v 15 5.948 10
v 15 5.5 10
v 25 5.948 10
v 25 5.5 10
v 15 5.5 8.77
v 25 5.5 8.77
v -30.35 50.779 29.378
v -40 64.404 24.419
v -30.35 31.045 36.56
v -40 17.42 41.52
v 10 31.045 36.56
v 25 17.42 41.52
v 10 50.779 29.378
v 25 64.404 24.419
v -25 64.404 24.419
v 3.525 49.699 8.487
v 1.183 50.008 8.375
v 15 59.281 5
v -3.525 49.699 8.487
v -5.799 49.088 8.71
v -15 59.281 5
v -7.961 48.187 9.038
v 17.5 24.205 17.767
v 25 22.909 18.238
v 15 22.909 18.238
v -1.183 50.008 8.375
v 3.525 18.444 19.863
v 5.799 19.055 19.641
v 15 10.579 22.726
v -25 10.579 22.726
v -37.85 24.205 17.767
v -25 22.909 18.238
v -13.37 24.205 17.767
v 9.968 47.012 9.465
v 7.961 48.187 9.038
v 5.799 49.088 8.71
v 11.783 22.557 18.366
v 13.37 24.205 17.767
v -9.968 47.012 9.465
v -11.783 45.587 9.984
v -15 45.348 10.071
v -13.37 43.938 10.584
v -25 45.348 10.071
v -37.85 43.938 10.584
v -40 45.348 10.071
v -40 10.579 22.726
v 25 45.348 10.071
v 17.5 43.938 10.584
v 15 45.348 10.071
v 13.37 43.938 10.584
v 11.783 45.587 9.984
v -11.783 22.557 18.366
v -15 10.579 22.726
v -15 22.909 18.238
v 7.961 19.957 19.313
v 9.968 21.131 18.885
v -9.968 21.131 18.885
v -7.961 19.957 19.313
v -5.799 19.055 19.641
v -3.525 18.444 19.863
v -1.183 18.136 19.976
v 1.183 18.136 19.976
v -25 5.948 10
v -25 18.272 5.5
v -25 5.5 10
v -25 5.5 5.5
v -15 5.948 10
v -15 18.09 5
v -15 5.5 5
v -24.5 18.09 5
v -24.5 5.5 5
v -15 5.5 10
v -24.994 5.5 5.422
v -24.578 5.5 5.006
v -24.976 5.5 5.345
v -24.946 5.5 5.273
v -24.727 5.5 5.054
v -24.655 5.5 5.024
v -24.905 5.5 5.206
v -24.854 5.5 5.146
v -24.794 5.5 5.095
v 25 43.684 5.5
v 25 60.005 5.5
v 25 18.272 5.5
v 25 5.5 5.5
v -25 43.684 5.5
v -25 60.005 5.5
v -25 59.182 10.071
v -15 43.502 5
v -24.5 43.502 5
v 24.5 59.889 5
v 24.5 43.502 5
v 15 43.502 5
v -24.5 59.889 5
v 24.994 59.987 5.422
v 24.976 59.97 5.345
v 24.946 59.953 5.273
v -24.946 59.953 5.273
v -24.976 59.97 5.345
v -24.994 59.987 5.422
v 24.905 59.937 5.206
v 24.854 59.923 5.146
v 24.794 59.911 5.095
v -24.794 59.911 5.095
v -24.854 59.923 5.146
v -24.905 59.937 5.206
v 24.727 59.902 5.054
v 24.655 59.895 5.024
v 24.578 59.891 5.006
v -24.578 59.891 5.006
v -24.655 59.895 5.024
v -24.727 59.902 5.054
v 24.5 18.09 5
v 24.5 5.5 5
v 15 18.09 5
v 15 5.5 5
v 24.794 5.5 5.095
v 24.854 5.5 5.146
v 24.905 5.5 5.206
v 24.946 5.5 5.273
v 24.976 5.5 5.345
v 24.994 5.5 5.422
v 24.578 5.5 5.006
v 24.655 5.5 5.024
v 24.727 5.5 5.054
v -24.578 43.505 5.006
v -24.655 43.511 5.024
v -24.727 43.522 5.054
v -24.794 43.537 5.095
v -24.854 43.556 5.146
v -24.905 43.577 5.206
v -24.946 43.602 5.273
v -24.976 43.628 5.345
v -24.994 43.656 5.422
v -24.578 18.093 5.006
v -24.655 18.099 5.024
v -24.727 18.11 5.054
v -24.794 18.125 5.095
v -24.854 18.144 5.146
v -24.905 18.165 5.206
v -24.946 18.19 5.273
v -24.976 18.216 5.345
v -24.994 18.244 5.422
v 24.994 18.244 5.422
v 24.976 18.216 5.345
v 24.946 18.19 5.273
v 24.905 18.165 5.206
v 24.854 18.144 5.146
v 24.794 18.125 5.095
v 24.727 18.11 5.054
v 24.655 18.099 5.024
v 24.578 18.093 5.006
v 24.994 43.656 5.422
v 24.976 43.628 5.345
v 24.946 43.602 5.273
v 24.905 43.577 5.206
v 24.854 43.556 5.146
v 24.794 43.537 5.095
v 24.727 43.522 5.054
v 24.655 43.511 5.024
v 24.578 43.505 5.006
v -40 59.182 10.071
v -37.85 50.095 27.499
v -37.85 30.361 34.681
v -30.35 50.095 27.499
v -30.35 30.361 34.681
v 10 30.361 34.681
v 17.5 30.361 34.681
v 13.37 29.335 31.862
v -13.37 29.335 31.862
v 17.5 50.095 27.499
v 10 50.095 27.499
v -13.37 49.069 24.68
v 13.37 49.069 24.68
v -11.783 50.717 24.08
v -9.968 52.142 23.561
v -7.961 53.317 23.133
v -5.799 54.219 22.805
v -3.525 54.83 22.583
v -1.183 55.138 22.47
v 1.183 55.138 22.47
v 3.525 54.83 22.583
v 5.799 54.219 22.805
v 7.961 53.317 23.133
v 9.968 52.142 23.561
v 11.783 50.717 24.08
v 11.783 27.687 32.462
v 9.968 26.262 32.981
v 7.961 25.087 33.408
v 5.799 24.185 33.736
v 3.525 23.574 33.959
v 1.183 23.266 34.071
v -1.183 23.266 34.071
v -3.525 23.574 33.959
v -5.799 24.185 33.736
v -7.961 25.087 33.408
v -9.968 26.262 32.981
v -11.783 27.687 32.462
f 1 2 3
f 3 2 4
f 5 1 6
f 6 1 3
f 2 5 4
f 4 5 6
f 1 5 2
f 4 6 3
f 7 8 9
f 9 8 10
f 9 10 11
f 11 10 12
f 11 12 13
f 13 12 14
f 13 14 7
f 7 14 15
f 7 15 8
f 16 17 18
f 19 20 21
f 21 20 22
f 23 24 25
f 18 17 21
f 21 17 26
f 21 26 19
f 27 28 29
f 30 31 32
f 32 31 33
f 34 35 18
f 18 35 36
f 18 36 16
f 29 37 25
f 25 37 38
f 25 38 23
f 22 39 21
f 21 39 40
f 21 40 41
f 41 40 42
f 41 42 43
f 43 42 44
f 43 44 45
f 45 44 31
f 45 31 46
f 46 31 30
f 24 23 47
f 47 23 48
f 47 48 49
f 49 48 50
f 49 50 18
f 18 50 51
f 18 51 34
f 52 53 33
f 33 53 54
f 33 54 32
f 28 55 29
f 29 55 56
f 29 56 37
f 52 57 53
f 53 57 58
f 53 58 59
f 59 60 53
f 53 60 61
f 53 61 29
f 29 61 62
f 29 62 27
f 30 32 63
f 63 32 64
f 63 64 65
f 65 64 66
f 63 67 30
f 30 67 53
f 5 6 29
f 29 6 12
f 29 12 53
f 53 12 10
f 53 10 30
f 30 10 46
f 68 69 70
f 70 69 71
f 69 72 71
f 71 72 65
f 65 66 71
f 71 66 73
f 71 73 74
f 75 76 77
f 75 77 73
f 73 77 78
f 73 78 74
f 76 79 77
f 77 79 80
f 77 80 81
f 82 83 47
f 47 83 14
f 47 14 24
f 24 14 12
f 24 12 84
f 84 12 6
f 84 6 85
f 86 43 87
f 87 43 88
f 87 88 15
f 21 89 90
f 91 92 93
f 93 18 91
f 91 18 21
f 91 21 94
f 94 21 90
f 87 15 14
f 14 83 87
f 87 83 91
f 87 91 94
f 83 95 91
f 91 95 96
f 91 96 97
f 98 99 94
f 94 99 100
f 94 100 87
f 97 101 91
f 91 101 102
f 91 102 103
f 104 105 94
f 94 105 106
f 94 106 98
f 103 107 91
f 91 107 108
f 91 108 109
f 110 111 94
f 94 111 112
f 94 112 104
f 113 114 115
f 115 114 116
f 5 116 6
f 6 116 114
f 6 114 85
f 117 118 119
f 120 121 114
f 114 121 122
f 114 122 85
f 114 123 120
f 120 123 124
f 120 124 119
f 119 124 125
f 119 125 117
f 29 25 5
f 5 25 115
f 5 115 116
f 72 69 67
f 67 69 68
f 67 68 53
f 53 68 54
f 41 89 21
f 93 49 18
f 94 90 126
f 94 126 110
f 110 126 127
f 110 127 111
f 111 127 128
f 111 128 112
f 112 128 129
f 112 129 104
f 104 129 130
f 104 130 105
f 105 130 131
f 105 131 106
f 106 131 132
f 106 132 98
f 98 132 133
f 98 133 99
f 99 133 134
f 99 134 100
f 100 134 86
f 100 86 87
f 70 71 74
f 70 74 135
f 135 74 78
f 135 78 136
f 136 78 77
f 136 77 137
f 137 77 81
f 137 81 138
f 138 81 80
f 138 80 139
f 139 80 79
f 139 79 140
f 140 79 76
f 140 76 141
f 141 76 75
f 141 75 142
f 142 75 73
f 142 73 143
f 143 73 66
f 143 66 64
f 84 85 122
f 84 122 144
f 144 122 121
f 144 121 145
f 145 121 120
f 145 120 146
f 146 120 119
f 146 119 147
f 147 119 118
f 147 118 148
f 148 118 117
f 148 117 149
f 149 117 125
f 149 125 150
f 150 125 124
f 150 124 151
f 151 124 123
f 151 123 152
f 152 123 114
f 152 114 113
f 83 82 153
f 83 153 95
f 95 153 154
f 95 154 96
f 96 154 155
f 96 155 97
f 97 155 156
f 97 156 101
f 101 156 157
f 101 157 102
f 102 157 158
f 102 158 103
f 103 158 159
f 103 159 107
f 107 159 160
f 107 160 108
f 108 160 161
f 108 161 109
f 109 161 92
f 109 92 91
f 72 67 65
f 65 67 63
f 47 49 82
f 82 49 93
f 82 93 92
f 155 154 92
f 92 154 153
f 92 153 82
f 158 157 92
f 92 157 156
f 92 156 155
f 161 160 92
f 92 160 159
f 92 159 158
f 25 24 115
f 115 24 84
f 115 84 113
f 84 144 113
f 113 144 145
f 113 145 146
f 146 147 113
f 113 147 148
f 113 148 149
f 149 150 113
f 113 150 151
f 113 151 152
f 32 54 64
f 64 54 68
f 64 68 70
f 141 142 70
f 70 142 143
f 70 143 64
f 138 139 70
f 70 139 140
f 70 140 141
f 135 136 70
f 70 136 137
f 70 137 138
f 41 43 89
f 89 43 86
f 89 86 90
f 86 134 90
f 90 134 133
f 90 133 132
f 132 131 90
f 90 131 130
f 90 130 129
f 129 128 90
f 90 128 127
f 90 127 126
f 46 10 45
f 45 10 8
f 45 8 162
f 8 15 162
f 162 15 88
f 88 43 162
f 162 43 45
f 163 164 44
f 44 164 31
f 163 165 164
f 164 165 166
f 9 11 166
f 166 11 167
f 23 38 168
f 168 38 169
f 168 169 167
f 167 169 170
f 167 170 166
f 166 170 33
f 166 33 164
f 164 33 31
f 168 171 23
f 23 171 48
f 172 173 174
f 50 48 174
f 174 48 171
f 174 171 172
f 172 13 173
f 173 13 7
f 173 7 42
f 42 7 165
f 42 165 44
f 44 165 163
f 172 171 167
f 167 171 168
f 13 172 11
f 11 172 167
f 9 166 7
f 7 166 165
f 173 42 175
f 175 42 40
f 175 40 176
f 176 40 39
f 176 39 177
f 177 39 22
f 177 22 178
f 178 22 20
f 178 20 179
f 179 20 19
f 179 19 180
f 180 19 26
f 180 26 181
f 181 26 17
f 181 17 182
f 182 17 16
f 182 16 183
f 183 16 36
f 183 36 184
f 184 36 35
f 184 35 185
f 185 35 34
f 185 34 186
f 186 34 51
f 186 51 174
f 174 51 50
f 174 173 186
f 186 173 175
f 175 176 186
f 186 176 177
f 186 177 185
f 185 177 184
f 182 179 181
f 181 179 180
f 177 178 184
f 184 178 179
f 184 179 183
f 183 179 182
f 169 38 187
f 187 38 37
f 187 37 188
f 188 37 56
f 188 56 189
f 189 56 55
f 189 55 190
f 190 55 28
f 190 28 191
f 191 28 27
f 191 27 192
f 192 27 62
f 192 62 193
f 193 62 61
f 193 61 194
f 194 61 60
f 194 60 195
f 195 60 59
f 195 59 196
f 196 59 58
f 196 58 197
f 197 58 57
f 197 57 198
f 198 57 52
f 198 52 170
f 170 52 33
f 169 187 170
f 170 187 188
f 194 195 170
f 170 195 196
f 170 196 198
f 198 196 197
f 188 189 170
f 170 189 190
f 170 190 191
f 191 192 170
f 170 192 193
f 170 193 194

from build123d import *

# Parameters (mm, degrees)
SKETCH2_W            = 6
SKETCH2_H            = 6
BOSS_EXTRUDE1_DEPTH  = 5
SKETCH3_W            = 200
SKETCH3_H            = 20
CUT_EXTRUDE1_DEPTH   = 5
SKETCH4_W            = 5
SKETCH4_H            = 5
CUT_EXTRUDE2_DEPTH   = 5
SKETCH6_W            = 100
SKETCH6_H            = 20
BOSS_EXTRUDE2_DEPTH  = 100
BOSS_EXTRUDE3_DEPTH  = 100
CUT_EXTRUDE4_DEPTH   = 100
BOSS_EXTRUDE5_DEPTH  = 100
SKETCH14_R           = 12.5
CUT_EXTRUDE5_DEPTH   = 100
SKETCH15_R           = 15
SKETCH15_R_2         = 12.5
BOSS_EXTRUDE6_DEPTH  = 40
SKETCH16_W           = 50
SKETCH16_H           = 61.072294376
CUT_EXTRUDE10_DEPTH  = 35
SKETCH15_4_R         = 15
SKETCH15_4_R_2       = 12.5
CUT_EXTRUDE11_DEPTH  = 15
BOSS_EXTRUDE7_DEPTH  = 5
SKETCH23_R           = 15
SKETCH23_R_2         = 12.5
BOSS_EXTRUDE8_DEPTH  = 25
SKETCH21_W           = 50
SKETCH21_H           = 55
CUT_EXTRUDE12_DEPTH  = 35
SKETCH22_W           = 50
SKETCH22_H           = 55
BOSS_EXTRUDE9_DEPTH  = 5
SKETCH23_3_R         = 12.5
CUT_EXTRUDE13_DEPTH  = 20
CUT_EXTRUDE15_DEPTH  = 3
CUT_EXTRUDE16_DEPTH  = 5
SKETCH28_3_W         = 50
SKETCH28_3_H         = 5
BOSS_EXTRUDE12_DEPTH = 5
SKETCH31_W           = 50
SKETCH31_H           = 50
SKETCH31_W_2         = 24
SKETCH31_H_2         = 12.7
BOSS_EXTRUDE13_DEPTH = 20
SKETCH34_W           = 50
SKETCH34_H           = 50
CUT_EXTRUDE19_DEPTH  = 105
CUT_EXTRUDE20_DEPTH  = 110
SKETCH38_R           = 15
SKETCH38_R_2         = 12.5
CUT_EXTRUDE21_DEPTH  = 20
BOSS_EXTRUDE15_DEPTH = 50
SKETCH42_W           = 30
SKETCH42_H           = 18.394120173
CUT_EXTRUDE24_DEPTH  = 55
CUT_EXTRUDE25_DEPTH  = 55
FILLET1_R            = 0.5
BOSS_EXTRUDE16_DEPTH = 10
BOSS_EXTRUDE17_DEPTH = 10
CUT_EXTRUDE26_DEPTH  = 50
SKETCH49_W           = 15
SKETCH49_H           = 50
BOSS_EXTRUDE18_DEPTH = 20
CUT_EXTRUDE27_DEPTH  = 15
SKETCH47_W           = 7.5
SKETCH47_H           = 21
CUT_EXTRUDE28_DEPTH  = 18
SKETCH47_4_W         = 40.35
SKETCH47_4_H         = 21
SKETCH47_4_W_2       = 24
SKETCH47_4_H_2       = 12.7
CUT_EXTRUDE29_DEPTH  = 20
CUT_EXTRUDE30_DEPTH  = 15


with BuildPart() as part:
    # Sketch2 → Boss-Extrude1 (new body)
    with BuildSketch(Plane.XY):
        Polygon((-100, 75), (-100, -45), (-60, -45), (-60, -65), (0, -65), (60, -65), (60, -45), (100, -45), (100, 75), align=None)
        with Locations((55, -50)):
            Rectangle(SKETCH2_W, SKETCH2_H, mode=Mode.SUBTRACT)
        with Locations((-55, -50)):
            Rectangle(SKETCH2_W, SKETCH2_H, mode=Mode.SUBTRACT)
    extrude(amount=BOSS_EXTRUDE1_DEPTH)

    # Sketch3 → Cut-Extrude1 (cut)
    with BuildSketch(Plane.XY.offset(5)):
        with Locations((0, 65)):
            Rectangle(SKETCH3_W, SKETCH3_H)
    extrude(amount=-CUT_EXTRUDE1_DEPTH, mode=Mode.SUBTRACT)

    # Sketch4 → Cut-Extrude2 (cut)
    with BuildSketch(Plane(origin=(0, 0, 0), x_dir=(-1, 0, 0), z_dir=(0, 0, -1))):
        with Locations((-97.5, 47.5)):
            Rectangle(SKETCH4_W, SKETCH4_H)
        Polygon((95, 50), (95, 45), (97.5, 45), (100, 45), (100, 50), align=None)
        with Locations((-97.5, 5)):
            Rectangle(SKETCH4_W, SKETCH4_H)
        with Locations((97.5, 5)):
            Rectangle(SKETCH4_W, SKETCH4_H)
        with Locations((-97.5, -37.5)):
            Rectangle(SKETCH4_W, SKETCH4_H)
        Polygon((100, -35), (95, -35), (95, -40), (97.5, -40), (100, -40), align=None)
    extrude(amount=-CUT_EXTRUDE2_DEPTH, mode=Mode.SUBTRACT)

    # Sketch6 → Boss-Extrude2 (add)
    with BuildSketch(Plane(origin=(0, 0, 0), x_dir=(-1, 0, 0), z_dir=(0, 0, -1))):
        with Locations((0, -55)):
            Rectangle(SKETCH6_W, SKETCH6_H)
    extrude(amount=BOSS_EXTRUDE2_DEPTH)

    # Sketch8 → Boss-Extrude3 (add)
    with BuildSketch(Plane(origin=(50, 0, 0), x_dir=(0, 0, -1), z_dir=(1, 0, 0))):
        Polygon((42.17911114, -45), (100, -45), (100, 55), (78.57613456, 55), (63.797824283, 14.396926208), (60.37762285, 5), (56.957421417, -4.396926208), align=None)
    extrude(amount=-BOSS_EXTRUDE3_DEPTH)

    # Sketch12 → Cut-Extrude4 (cut)
    with BuildSketch(Plane(origin=(50, 0, 0), x_dir=(0, 0, -1), z_dir=(1, 0, 0))):
        Polygon((78.57613456, 55), (42.17911114, -45), (47.5, -45), (83.89702342, 55), align=None)
    extrude(amount=-CUT_EXTRUDE4_DEPTH, mode=Mode.SUBTRACT)

    # Sketch13 → Boss-Extrude5 (add)
    with BuildSketch(Plane(origin=(0, -20.530205756, -56.406276742), x_dir=(1, 0, 0), z_dir=(0, 0.3420201432707361, 0.9396926208059023))):
        with BuildLine():
            ThreePointArc((10, 27.168677492), (7.071067812, 34.239745304), (0, 37.168677492))
            ThreePointArc((0, 37.168677492), (-7.071067812, 20.09760968), (10, 27.168677492))
        make_face()
    extrude(amount=BOSS_EXTRUDE5_DEPTH)

    # Sketch14 → Cut-Extrude5 (cut)
    with BuildSketch(Plane(origin=(0, 13.671808571, 37.562985339), x_dir=(1, 0, 0), z_dir=(0, 0.34202014327073604, 0.9396926208059022))):
        with Locations((0, 27.168677492)):
            Circle(SKETCH14_R)
    extrude(amount=-CUT_EXTRUDE5_DEPTH, mode=Mode.SUBTRACT)

    # Sketch15 → Boss-Extrude6 (add)
    with BuildSketch(Plane(origin=(0, 13.671808571, 37.562985339), x_dir=(1, 0, 0), z_dir=(0, 0.3420201432707362, 0.9396926208059023))):
        with Locations((0, 27.168677492)):
            Circle(SKETCH15_R)
        with Locations((0, 27.168677492)):
            Circle(SKETCH15_R_2, mode=Mode.SUBTRACT)
    extrude(amount=-BOSS_EXTRUDE6_DEPTH)

    # Sketch16 → Cut-Extrude10 (cut)
    with BuildSketch(Plane(origin=(0, 0, -30), x_dir=(-1, 0, 0), z_dir=(0, 0, -1))):
        with Locations((0, 30.536147188)):
            Rectangle(SKETCH16_W, SKETCH16_H)
    extrude(amount=-CUT_EXTRUDE10_DEPTH, mode=Mode.SUBTRACT)


with BuildPart() as cut_extrude10_piece_1:
    # of the separate pieces the step leaves, piece 1, a body of its own (cut_extrude10_pieces)
    add(part.part.solids().sort_by_distance((-100, 55, 0))[0])

    # Sketch18 → Boss-Extrude7 (add)
    with BuildSketch(Plane.XY.offset(5)):
        Polygon((30, 55), (25, 55), (25, 0), (-25, 0), (-25, 55), (-30, 55), (-30, -5), (30, -5), (30, 0), align=None)
    extrude(amount=BOSS_EXTRUDE7_DEPTH)



with BuildPart() as cut_extrude10_piece_2:
    # of the separate pieces the step leaves, piece 2, a body of its own (cut_extrude10_pieces)
    add(part.part.solids().sort_by_distance((15, 39.202014327, 28.270750371))[0])

    # Sketch15<4> → Cut-Extrude11 (cut)
    with BuildSketch(Plane(origin=(0, 13.671808571, 37.562985339), x_dir=(1, 0, 0), z_dir=(0, 0.3420201432707362, 0.9396926208059023))):
        with Locations((0, 27.168677492)):
            Circle(SKETCH15_4_R)
        with Locations((0, 27.168677492)):
            Circle(SKETCH15_4_R_2, mode=Mode.SUBTRACT)
    extrude(amount=-CUT_EXTRUDE11_DEPTH, mode=Mode.SUBTRACT)

    # Sketch23 → Boss-Extrude8 (add)
    with BuildSketch(Plane(origin=(0, 8.541506422, 23.467596027), x_dir=(1, 0, 0), z_dir=(0, 0.34202014327073627, 0.9396926208059023))):
        with Locations((0, 27.168677492)):
            Circle(SKETCH23_R)
        with Locations((0, 27.168677492)):
            Circle(SKETCH23_R_2, mode=Mode.SUBTRACT)
    extrude(amount=-BOSS_EXTRUDE8_DEPTH)

    # Sketch21 → Cut-Extrude12 (cut)
    with BuildSketch(Plane(origin=(0, 0, -30), x_dir=(-1, 0, 0), z_dir=(0, 0, -1))):
        with Locations((0, 27.5)):
            Rectangle(SKETCH21_W, SKETCH21_H)
    extrude(amount=-CUT_EXTRUDE12_DEPTH, mode=Mode.SUBTRACT)


with BuildPart() as cut_extrude10_piece_1_1:
    add(cut_extrude10_piece_1.part)

    add(cut_extrude10_piece_2.part)  # Boss-Extrude9 merges Cut-Extrude10 piece 2
    # Sketch22 → Boss-Extrude9 (add)
    with BuildSketch(Plane(origin=(0, 0, 0), x_dir=(-1, 0, 0), z_dir=(0, 0, -1))):
        with Locations((0, 27.5)):
            Rectangle(SKETCH22_W, SKETCH22_H)
    extrude(amount=-BOSS_EXTRUDE9_DEPTH)

    # Sketch23<3> → Cut-Extrude13 (cut)
    with BuildSketch(Plane(origin=(0, 8.541506422, 23.467596027), x_dir=(1, 0, 0), z_dir=(0, 0.34202014327073627, 0.9396926208059023))):
        with Locations((0, 27.168677492)):
            Circle(SKETCH23_3_R)
    extrude(amount=-CUT_EXTRUDE13_DEPTH, mode=Mode.SUBTRACT)

    # Sketch27 → Cut-Extrude15 (cut)
    with BuildSketch(Plane(origin=(0, 8.541506422, 23.467596027), x_dir=(1, 0, 0), z_dir=(0, 0.34202014327073627, 0.9396926208059023))):
        with BuildLine():
            ThreePointArc((2, 42.034746239), (0, 42.168677492), (-2, 42.034746239))
            Line((-2, 42.034746239), (-2, 39.507640171))
            ThreePointArc((-2, 39.507640171), (0, 39.668677492), (2, 39.507640171))
            Line((2, 39.507640171), (2, 42.034746239))
        make_face()
        with BuildLine():
            Line((-12.338962679, 29.168677492), (-14.866068747, 29.168677492))
            ThreePointArc((-14.866068747, 29.168677492), (-15, 27.168677492), (-14.866068747, 25.168677492))
            Line((-14.866068747, 25.168677492), (-12.338962679, 25.168677492))
            ThreePointArc((-12.338962679, 25.168677492), (-12.5, 27.168677492), (-12.338962679, 29.168677492))
        make_face()
        with BuildLine():
            ThreePointArc((14.866068747, 25.168677492), (15, 27.168677492), (14.866068747, 29.168677492))
            Line((14.866068747, 29.168677492), (12.338962679, 29.168677492))
            ThreePointArc((12.338962679, 29.168677492), (12.5, 27.168677492), (12.338962679, 25.168677492))
            Line((12.338962679, 25.168677492), (14.866068747, 25.168677492))
        make_face()
        with BuildLine():
            ThreePointArc((2, 14.829714813), (0, 14.668677492), (-2, 14.829714813))
            Line((-2, 14.829714813), (-2, 12.302608744))
            ThreePointArc((-2, 12.302608744), (0, 12.168677492), (2, 12.302608744))
            Line((2, 12.302608744), (2, 14.829714813))
        make_face()
    extrude(amount=-CUT_EXTRUDE15_DEPTH, mode=Mode.SUBTRACT)

    # Sketch28 → Cut-Extrude16 (cut)
    with BuildSketch(Plane.XY.offset(10)):
        Polygon((25, 0), (-25, 0), (-30, 0), (-30, -5), (30, -5), (30, 0), align=None)
    extrude(amount=-CUT_EXTRUDE16_DEPTH, mode=Mode.SUBTRACT)

    # Sketch28<3> → Boss-Extrude12 (add)
    with BuildSketch(Plane.XY.offset(10)):
        with Locations((0, 2.5)):
            Rectangle(SKETCH28_3_W, SKETCH28_3_H)
    extrude(amount=-BOSS_EXTRUDE12_DEPTH)

    # Sketch31 → Boss-Extrude13 (add)
    with BuildSketch(Plane(origin=(0, 8.541506422, 23.467596027), x_dir=(1, 0, 0), z_dir=(0, 0.34202014327073627, 0.9396926208059023))):
        with Locations((0, 27.168677492)):
            Rectangle(SKETCH31_W, SKETCH31_H)
        with Locations((-5.65, 27.168677492)):
            Rectangle(SKETCH31_W_2, SKETCH31_H_2, mode=Mode.SUBTRACT)
    extrude(amount=BOSS_EXTRUDE13_DEPTH)

    # Sketch34 → Cut-Extrude19 (cut)
    with BuildSketch(Plane(origin=(0, 0, -100), x_dir=(-1, 0, 0), z_dir=(0, 0, -1))):
        Polygon((-100, 55), (-100, -65), (100, -65), (100, 55), (30, 55), (30, 0), (-30, 0), (-30, 55), align=None)
        with Locations((0, 30)):
            Rectangle(SKETCH34_W, SKETCH34_H)
    extrude(amount=-CUT_EXTRUDE19_DEPTH, mode=Mode.SUBTRACT)


with BuildPart() as cut_extrude19_piece_1:
    # of the separate pieces the step leaves, piece 1, a body of its own (cut_extrude19_pieces)
    add(cut_extrude10_piece_1_1.part.solids().sort_by_distance((-30, 55, 0))[0])


with BuildPart() as cut_extrude19_piece_2:
    # of the separate pieces the step leaves, piece 2, a body of its own (cut_extrude19_pieces)
    add(cut_extrude10_piece_1_1.part.solids().sort_by_distance((30, 55, -100))[0])


with BuildPart() as cut_extrude20_tool:
    # Sketch34<3> → Cut-Extrude20 (new body)
    with BuildSketch(Plane(origin=(0, 0, -100), x_dir=(-1, 0, 0), z_dir=(0, 0, -1))):
        Polygon((-25, 55), (-30, 55), (-30, 0), (30, 0), (30, 55), (25, 55), (25, 5), (-25, 5), align=None)
    extrude(amount=-CUT_EXTRUDE20_DEPTH)


with BuildPart() as cut_extrude19_piece_1_1:
    add(cut_extrude19_piece_1.part)

    # Cut-Extrude20: cut by cut_extrude20_tool
    add(cut_extrude20_tool.part, mode=Mode.SUBTRACT)

    # Sketch38 → Cut-Extrude21 (cut)
    with BuildSketch(Plane(origin=(0, 1.701103557, 4.673743611), x_dir=(-1, 0, 0), z_dir=(0, -0.3420201432707364, -0.9396926208059022))):
        with Locations((0, 27.168677492)):
            Circle(SKETCH38_R)
        with Locations((0, 27.168677492)):
            Circle(SKETCH38_R_2, mode=Mode.SUBTRACT)
    extrude(amount=-CUT_EXTRUDE21_DEPTH, mode=Mode.SUBTRACT)

    # Sketch36 → Boss-Extrude15 (add)
    with BuildSketch(Plane(origin=(25, 0, 0), x_dir=(0, 0, -1), z_dir=(1, 0, 0))):
        Polygon((5, 57.564027698), (-24.418709893, 64.404430564), (-5.624857477, 57.564027698), (-10.755159626, 43.468638386), (-5, 41.373931589), (-5, 55), (0, 55), (0, 45), (5, 45), align=None)
        Polygon((-17.595562491, 24.67478597), (-22.72586464, 10.579396658), (-8.770337016, 5.5), (-5, 5.5), (-5, 20.09037614), align=None)
    extrude(amount=-BOSS_EXTRUDE15_DEPTH)

    # Sketch42 → Cut-Extrude24 (cut)
    with BuildSketch(Plane(origin=(0, 2.037890236, -0.741731386), x_dir=(1, 0, 0), z_dir=(0, -0.9396926208059021, 0.3420201432707363))):
        with Locations((0, 15.776633978)):
            Rectangle(SKETCH42_W, SKETCH42_H)
    extrude(amount=-CUT_EXTRUDE24_DEPTH, mode=Mode.SUBTRACT)

    # Sketch43 → Cut-Extrude25 (cut)
    with BuildSketch(Plane.ZY.offset(25)):
        Polygon((5, 55), (5, 64.404430564), (-5, 64.404430564), (-5, 45), (5, 45), align=None)
    extrude(amount=-CUT_EXTRUDE25_DEPTH, mode=Mode.SUBTRACT)

    # Fillet1
    fillet1_edges = [cut_extrude19_piece_1_1.edges().sort_by_distance(p)[0] for p in [
        (-25, 50.6315736, 5),
        (-25, 12.79518807, 5),
        (25, 12.79518807, 5),
        (25, 50.6315736, 5),
    ]]
    fillet(fillet1_edges, radius=FILLET1_R)

    # Sketch45 → Boss-Extrude16 (add)
    with BuildSketch(Plane.ZY.offset(25)):
        Polygon((10, 5.947560724), (8.770337016, 5.5), (10, 5.5), align=None)
    extrude(amount=-BOSS_EXTRUDE16_DEPTH)

    # Sketch48 → Cut-Extrude26 (cut)
    with BuildSketch(Plane.ZY.offset(25)):
        Polygon((5, 41.373931589), (10.755159626, 43.468638386), (10.071119339, 45.348023628), (5, 43.502287134), align=None)
        Polygon((5, 20.09037614), (5, 18.09037614), (18.238350101, 22.908741527), (17.595562491, 24.67478597), align=None)
    extrude(amount=-CUT_EXTRUDE26_DEPTH, mode=Mode.SUBTRACT)

    # Sketch49 → Boss-Extrude18 (add)
    with BuildSketch(Plane(origin=(0, 15.381909287, 42.261448443), x_dir=(1, 0, 0), z_dir=(0, 0.3420201432707363, 0.9396926208059021))):
        with Locations((-32.5, 27.168677492)):
            Rectangle(SKETCH49_W, SKETCH49_H)
    extrude(amount=-BOSS_EXTRUDE18_DEPTH)

    # Sketch50 → Cut-Extrude27 (cut)
    with BuildSketch(Plane.ZY.offset(40)):
        Polygon((10.071119339, 45.348023628), (10.071119339, 59.18233467), (5.624857477, 57.564027698), align=None)
    extrude(amount=-CUT_EXTRUDE27_DEPTH, mode=Mode.SUBTRACT)

    # Sketch47 → Cut-Extrude28 (cut)
    with BuildSketch(Plane(origin=(0, 8.541506422, 23.467596027), x_dir=(-1, 0, 0), z_dir=(0, -0.3420201432707363, -0.9396926208059021))):
        with Locations((-13.75, 27.168677492)):
            Rectangle(SKETCH47_W, SKETCH47_H)
        with Locations((34.1, 27.168677492)):
            Rectangle(SKETCH47_W, SKETCH47_H)
    extrude(amount=-CUT_EXTRUDE28_DEPTH, mode=Mode.SUBTRACT)

    # Sketch47<4> → Cut-Extrude29 (cut)
    with BuildSketch(Plane(origin=(0, 8.541506422, 23.467596027), x_dir=(-1, 0, 0), z_dir=(0, -0.3420201432707363, -0.9396926208059021))):
        with Locations((10.175, 27.168677492)):
            Rectangle(SKETCH47_4_W, SKETCH47_4_H)
        with Locations((5.65, 27.168677492)):
            Rectangle(SKETCH47_4_W_2, SKETCH47_4_H_2, mode=Mode.SUBTRACT)
    extrude(amount=-CUT_EXTRUDE29_DEPTH, mode=Mode.SUBTRACT)

    # Sketch47<5> → Cut-Extrude30 (cut)
    with BuildSketch(Plane(origin=(0, 8.541506422, 23.467596027), x_dir=(-1, 0, 0), z_dir=(0, -0.3420201432707363, -0.9396926208059021))):
        with BuildLine():
            Line((-13.369741957, 37.668677492), (13.369741957, 37.668677492))
            ThreePointArc((13.369741957, 37.668677492), (0, 44.168677492), (-13.369741957, 37.668677492))
        make_face()
        with BuildLine():
            Line((13.369741957, 16.668677492), (-13.369741957, 16.668677492))
            ThreePointArc((-13.369741957, 16.668677492), (0, 10.168677492), (13.369741957, 16.668677492))
        make_face()
    extrude(amount=-CUT_EXTRUDE30_DEPTH, mode=Mode.SUBTRACT)


with BuildPart() as cut_extrude19_piece_2_1:
    add(cut_extrude19_piece_2.part)

    # Cut-Extrude20: cut by cut_extrude20_tool
    add(cut_extrude20_tool.part, mode=Mode.SUBTRACT)


with BuildPart() as body_2:
    # Sketch46 → Boss-Extrude17 (new body)
    with BuildSketch(Plane(origin=(25, 0, 0), x_dir=(0, 0, -1), z_dir=(1, 0, 0))):
        Polygon((-10, 5.5), (-8.770337016, 5.5), (-10, 5.947560724), align=None)
    extrude(amount=-BOSS_EXTRUDE17_DEPTH)


solid = Compound([cut_extrude19_piece_1_1.part, body_2.part])
